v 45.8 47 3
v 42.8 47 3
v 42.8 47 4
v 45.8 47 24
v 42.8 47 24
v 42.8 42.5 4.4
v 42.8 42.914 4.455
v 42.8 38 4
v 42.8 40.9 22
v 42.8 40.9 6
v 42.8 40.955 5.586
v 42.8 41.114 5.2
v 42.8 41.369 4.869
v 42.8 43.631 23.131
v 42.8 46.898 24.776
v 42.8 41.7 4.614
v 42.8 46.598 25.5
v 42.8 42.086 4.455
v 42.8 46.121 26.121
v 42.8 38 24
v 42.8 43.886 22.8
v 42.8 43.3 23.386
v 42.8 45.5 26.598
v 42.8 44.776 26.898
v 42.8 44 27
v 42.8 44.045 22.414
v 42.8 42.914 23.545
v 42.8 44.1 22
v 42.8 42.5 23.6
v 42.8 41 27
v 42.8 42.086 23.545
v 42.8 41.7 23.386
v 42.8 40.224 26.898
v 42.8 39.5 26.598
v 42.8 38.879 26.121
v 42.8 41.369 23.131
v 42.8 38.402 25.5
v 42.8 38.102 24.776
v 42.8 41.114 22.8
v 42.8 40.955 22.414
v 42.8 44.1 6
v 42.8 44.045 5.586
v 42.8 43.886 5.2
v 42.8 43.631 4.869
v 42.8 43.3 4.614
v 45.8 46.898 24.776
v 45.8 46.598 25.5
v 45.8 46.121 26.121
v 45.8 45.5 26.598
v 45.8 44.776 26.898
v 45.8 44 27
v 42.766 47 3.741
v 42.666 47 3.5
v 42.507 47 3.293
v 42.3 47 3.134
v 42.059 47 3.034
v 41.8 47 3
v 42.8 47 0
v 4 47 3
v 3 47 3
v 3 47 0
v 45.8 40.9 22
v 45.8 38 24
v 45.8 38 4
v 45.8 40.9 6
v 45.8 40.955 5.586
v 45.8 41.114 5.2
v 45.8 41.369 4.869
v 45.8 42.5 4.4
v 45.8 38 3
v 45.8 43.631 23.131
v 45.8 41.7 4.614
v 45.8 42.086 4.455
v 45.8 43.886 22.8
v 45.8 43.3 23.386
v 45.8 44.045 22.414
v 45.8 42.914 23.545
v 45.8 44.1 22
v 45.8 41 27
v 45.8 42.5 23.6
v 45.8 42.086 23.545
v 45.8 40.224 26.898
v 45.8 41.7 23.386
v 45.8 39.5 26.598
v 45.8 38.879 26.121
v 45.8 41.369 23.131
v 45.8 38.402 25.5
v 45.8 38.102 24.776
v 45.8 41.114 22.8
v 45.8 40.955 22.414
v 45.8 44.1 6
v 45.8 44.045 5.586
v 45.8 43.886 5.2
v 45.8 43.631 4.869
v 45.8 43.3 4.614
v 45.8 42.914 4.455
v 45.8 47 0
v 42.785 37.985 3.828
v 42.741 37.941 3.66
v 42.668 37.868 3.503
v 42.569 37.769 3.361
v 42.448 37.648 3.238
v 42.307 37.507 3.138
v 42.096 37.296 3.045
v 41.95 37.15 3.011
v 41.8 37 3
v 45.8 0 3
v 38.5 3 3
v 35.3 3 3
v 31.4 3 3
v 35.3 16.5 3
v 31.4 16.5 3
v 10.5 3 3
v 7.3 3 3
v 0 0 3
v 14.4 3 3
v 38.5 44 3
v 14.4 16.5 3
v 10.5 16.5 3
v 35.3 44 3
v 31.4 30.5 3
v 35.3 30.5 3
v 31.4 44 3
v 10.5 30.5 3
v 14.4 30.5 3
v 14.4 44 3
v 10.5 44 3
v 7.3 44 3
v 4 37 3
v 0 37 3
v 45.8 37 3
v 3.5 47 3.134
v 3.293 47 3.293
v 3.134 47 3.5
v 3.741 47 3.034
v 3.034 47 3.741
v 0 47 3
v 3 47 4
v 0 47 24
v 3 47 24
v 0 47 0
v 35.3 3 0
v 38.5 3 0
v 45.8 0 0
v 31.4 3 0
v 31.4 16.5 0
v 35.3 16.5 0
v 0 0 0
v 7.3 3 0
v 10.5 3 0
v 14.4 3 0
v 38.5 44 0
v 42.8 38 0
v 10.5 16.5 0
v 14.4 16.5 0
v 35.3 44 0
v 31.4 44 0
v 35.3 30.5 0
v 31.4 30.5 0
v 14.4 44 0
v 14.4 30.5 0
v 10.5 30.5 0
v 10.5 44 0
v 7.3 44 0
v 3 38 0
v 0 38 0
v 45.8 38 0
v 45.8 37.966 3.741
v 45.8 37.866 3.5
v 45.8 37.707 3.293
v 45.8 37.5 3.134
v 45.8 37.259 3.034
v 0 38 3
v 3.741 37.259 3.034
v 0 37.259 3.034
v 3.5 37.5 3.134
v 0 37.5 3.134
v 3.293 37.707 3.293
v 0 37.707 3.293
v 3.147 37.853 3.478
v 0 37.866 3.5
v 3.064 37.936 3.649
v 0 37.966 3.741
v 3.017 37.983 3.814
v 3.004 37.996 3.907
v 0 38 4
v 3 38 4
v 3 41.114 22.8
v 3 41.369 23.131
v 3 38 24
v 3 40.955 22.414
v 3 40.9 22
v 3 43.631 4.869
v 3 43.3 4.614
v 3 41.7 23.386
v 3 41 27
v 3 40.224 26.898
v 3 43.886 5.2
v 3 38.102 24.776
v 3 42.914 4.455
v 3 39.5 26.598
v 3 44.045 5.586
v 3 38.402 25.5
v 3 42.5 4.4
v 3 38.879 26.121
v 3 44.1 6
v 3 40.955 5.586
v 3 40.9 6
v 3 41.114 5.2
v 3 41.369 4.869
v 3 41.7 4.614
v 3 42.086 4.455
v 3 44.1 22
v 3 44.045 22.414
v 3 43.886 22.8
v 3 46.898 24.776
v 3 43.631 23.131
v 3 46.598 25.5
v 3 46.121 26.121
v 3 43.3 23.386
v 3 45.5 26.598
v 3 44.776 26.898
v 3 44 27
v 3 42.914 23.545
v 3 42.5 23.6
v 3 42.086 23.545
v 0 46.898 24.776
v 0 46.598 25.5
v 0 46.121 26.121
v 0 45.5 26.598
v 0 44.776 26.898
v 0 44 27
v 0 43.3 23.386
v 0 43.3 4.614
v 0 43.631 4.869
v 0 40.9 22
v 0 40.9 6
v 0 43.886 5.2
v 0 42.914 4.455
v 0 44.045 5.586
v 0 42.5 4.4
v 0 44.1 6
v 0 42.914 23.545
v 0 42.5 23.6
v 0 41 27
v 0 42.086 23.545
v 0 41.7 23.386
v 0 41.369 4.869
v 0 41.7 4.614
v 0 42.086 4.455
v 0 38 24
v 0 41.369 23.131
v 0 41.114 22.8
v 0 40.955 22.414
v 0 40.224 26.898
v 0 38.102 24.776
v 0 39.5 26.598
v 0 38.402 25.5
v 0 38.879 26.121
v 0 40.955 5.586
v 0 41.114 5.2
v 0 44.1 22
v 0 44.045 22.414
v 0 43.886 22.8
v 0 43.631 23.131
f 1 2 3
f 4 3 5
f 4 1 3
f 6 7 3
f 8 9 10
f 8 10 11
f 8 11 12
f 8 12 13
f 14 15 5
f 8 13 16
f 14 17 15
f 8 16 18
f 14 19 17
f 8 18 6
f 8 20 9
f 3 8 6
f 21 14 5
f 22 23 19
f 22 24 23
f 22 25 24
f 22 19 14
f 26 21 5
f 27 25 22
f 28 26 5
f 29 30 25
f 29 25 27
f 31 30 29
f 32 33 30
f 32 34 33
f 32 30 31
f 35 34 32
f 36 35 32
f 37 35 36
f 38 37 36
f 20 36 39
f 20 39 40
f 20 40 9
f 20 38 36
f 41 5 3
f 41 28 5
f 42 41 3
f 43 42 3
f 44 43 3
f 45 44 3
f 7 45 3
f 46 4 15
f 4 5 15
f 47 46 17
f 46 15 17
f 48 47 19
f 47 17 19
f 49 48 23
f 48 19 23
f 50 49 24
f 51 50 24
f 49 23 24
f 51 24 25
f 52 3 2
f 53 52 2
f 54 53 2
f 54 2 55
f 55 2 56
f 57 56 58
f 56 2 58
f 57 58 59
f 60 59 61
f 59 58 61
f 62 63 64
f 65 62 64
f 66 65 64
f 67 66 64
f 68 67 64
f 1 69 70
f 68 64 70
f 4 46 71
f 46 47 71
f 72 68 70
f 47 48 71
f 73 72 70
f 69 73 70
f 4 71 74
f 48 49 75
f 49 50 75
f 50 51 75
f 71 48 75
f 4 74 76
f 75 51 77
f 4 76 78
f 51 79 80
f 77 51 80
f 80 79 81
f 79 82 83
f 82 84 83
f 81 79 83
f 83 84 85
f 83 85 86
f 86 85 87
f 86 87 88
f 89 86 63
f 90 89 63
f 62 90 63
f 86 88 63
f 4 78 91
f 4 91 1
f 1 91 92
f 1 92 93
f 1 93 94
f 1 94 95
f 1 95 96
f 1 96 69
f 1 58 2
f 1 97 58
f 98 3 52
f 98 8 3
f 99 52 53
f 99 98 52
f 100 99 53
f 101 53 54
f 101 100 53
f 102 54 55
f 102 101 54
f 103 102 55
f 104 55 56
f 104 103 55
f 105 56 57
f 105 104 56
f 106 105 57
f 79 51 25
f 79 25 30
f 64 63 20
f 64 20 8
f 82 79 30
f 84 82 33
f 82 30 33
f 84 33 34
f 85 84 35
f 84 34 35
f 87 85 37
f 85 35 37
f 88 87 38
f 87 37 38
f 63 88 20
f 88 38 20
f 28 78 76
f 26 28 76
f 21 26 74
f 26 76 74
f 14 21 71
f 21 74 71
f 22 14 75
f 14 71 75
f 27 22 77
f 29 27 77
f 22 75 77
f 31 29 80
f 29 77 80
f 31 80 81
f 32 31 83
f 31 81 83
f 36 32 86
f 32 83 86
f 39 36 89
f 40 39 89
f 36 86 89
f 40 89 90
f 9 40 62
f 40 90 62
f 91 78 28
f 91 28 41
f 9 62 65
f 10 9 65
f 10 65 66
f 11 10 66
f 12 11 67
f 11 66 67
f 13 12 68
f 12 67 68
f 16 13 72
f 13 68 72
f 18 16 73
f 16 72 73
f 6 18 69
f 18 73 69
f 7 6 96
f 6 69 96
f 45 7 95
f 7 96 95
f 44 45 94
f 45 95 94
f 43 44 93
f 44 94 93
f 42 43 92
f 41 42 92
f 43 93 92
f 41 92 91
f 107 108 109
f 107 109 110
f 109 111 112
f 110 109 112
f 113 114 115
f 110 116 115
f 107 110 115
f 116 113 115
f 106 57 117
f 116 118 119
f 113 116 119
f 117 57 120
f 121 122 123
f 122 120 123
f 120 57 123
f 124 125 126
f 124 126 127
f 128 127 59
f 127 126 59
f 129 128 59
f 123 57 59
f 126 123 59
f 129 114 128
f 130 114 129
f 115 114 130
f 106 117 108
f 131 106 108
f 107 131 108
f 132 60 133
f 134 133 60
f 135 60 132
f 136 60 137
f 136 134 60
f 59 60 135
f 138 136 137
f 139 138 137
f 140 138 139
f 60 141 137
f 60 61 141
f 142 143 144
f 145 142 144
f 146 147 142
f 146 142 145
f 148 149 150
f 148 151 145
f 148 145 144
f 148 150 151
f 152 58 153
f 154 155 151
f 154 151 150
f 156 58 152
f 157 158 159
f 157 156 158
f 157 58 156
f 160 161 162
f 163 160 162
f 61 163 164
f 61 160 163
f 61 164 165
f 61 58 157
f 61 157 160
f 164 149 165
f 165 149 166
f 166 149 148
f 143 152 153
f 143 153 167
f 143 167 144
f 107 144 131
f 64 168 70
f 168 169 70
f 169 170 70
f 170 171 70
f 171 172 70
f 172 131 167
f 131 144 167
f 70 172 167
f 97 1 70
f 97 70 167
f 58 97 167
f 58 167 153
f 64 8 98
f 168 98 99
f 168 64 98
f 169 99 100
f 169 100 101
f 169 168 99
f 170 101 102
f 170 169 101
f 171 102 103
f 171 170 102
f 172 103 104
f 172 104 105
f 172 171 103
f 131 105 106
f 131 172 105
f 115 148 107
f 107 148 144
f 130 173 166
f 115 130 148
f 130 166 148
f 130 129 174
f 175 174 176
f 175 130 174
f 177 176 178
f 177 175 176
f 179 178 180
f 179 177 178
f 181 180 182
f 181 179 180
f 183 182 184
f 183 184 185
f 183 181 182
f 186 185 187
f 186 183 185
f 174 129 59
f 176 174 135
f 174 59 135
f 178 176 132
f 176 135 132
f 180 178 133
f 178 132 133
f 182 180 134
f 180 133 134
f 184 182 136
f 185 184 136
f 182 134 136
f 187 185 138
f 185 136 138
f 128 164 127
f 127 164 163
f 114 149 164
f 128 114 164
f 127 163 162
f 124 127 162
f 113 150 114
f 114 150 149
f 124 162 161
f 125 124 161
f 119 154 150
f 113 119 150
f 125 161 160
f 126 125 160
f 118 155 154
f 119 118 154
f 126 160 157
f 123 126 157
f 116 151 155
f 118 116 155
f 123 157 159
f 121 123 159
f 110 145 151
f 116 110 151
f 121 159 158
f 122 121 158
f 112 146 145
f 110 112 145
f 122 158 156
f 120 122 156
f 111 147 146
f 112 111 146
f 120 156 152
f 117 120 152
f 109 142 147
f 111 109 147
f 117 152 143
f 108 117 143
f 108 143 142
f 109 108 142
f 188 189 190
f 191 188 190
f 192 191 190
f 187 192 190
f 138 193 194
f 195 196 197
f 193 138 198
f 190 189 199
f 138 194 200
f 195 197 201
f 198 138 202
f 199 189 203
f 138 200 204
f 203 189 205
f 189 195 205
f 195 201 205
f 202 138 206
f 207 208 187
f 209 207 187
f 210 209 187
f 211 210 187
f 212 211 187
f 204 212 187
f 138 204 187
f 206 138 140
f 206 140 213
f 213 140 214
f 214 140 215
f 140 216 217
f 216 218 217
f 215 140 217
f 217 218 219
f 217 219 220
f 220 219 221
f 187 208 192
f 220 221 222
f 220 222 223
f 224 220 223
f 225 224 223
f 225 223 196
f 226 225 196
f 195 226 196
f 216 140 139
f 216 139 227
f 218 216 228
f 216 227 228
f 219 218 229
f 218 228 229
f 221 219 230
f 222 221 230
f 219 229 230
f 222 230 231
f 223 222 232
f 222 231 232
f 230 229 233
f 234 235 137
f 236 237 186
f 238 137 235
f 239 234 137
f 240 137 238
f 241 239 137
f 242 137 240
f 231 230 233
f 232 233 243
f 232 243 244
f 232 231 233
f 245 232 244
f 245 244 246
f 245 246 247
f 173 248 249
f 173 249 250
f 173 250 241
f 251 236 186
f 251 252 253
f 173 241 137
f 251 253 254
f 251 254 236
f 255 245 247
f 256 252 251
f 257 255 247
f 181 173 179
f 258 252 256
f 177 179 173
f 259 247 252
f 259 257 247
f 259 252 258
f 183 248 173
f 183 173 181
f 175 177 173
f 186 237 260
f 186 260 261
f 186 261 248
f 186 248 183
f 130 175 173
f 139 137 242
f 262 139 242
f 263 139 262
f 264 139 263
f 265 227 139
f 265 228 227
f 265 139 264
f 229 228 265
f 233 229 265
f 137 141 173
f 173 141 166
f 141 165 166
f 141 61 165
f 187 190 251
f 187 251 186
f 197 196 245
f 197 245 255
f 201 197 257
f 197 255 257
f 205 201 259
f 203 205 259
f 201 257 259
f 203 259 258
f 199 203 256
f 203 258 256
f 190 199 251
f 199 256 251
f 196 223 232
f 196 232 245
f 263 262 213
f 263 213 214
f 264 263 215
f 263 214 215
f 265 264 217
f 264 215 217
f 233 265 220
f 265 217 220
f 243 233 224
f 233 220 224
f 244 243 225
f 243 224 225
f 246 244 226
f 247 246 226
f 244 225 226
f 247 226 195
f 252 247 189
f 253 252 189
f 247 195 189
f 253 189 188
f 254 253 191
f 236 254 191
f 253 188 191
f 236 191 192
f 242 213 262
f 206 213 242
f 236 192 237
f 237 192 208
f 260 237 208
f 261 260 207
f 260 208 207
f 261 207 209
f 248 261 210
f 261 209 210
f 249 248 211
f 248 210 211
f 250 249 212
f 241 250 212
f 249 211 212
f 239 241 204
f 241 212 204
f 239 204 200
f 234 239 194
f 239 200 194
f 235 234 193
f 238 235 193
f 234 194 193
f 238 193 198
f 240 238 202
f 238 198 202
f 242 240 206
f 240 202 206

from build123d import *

# Parameters (mm, degrees)
SKETCH001_W  = 9
SKETCH001_H  = 27
PAD001_DEPTH = 3
SKETCH_W     = 45.8
SKETCH_H     = 47
PAD_DEPTH    = 3
SKETCH002_W  = 9
SKETCH002_H  = 27
PAD002_DEPTH = 3
FILLET_R     = 1
FILLET001_R  = 3


with BuildPart() as pad001:
    # Sketch001 → Pad001 (new body)
    with BuildSketch(Plane.YZ.offset(3)):
        with Locations((42.5, 13.5)):
            Rectangle(SKETCH001_W, SKETCH001_H)
        with BuildLine():
            ThreePointArc((44.1, 22), (42.5, 23.6), (40.9, 22))
            Line((40.9, 22), (40.9, 6))
            ThreePointArc((40.9, 6), (42.5, 4.4), (44.1, 6))
            Line((44.1, 22), (44.1, 6))
        make_face(mode=Mode.SUBTRACT)
    extrude(amount=-PAD001_DEPTH)


with BuildPart() as fusion:
    # Sketch → Pad (new body)
    with BuildSketch(Plane.XY):
        with Locations((22.9, 23.5)):
            Rectangle(SKETCH_W, SKETCH_H)
        Polygon((7.3, 44), (10.5, 44), (10.5, 30.5), (14.4, 30.5), (14.4, 44), (31.4, 44), (31.4, 30.5), (35.3, 30.5), (35.3, 44), (38.5, 44), (38.5, 3), (35.3, 3), (35.3, 16.5), (31.4, 16.5), (31.4, 3), (14.4, 3), (14.4, 16.5), (10.5, 16.5), (10.5, 3), (7.3, 3), align=None, mode=Mode.SUBTRACT)
    extrude(amount=PAD_DEPTH)

    # Fusion: union Pad001
    add(pad001.part)


with BuildPart() as fillet001:
    # Sketch002 → Pad002 (new body)
    with BuildSketch(Plane.YZ.offset(45.8)):
        with Locations((42.5, 13.5)):
            Rectangle(SKETCH002_W, SKETCH002_H)
        with BuildLine():
            ThreePointArc((44.1, 22), (42.5, 23.6), (40.9, 22))
            Line((40.9, 22), (40.9, 6))
            ThreePointArc((40.9, 6), (42.5, 4.4), (44.1, 6))
            Line((44.1, 22), (44.1, 6))
        make_face(mode=Mode.SUBTRACT)
    extrude(amount=-PAD002_DEPTH)

    # Fusion001: union Fusion
    add(fusion.part)

    # Fillet
    fillet_edges = [fillet001.edges().sort_by_distance(p)[0] for p in [
        (1.5, 38, 3),
        (3, 42.5, 3),
        (42.8, 42.5, 3),
        (44.3, 38, 3),
    ]]
    fillet(fillet_edges, radius=FILLET_R)

    # Fillet001
    fillet001_edges = [fillet001.edges().sort_by_distance(p)[0] for p in [
        (1.5, 38, 27),
        (44.3, 38, 27),
        (1.5, 47, 27),
        (44.3, 47, 27),
    ]]
    fillet(fillet001_edges, radius=FILLET001_R)


solid = fillet001.part
